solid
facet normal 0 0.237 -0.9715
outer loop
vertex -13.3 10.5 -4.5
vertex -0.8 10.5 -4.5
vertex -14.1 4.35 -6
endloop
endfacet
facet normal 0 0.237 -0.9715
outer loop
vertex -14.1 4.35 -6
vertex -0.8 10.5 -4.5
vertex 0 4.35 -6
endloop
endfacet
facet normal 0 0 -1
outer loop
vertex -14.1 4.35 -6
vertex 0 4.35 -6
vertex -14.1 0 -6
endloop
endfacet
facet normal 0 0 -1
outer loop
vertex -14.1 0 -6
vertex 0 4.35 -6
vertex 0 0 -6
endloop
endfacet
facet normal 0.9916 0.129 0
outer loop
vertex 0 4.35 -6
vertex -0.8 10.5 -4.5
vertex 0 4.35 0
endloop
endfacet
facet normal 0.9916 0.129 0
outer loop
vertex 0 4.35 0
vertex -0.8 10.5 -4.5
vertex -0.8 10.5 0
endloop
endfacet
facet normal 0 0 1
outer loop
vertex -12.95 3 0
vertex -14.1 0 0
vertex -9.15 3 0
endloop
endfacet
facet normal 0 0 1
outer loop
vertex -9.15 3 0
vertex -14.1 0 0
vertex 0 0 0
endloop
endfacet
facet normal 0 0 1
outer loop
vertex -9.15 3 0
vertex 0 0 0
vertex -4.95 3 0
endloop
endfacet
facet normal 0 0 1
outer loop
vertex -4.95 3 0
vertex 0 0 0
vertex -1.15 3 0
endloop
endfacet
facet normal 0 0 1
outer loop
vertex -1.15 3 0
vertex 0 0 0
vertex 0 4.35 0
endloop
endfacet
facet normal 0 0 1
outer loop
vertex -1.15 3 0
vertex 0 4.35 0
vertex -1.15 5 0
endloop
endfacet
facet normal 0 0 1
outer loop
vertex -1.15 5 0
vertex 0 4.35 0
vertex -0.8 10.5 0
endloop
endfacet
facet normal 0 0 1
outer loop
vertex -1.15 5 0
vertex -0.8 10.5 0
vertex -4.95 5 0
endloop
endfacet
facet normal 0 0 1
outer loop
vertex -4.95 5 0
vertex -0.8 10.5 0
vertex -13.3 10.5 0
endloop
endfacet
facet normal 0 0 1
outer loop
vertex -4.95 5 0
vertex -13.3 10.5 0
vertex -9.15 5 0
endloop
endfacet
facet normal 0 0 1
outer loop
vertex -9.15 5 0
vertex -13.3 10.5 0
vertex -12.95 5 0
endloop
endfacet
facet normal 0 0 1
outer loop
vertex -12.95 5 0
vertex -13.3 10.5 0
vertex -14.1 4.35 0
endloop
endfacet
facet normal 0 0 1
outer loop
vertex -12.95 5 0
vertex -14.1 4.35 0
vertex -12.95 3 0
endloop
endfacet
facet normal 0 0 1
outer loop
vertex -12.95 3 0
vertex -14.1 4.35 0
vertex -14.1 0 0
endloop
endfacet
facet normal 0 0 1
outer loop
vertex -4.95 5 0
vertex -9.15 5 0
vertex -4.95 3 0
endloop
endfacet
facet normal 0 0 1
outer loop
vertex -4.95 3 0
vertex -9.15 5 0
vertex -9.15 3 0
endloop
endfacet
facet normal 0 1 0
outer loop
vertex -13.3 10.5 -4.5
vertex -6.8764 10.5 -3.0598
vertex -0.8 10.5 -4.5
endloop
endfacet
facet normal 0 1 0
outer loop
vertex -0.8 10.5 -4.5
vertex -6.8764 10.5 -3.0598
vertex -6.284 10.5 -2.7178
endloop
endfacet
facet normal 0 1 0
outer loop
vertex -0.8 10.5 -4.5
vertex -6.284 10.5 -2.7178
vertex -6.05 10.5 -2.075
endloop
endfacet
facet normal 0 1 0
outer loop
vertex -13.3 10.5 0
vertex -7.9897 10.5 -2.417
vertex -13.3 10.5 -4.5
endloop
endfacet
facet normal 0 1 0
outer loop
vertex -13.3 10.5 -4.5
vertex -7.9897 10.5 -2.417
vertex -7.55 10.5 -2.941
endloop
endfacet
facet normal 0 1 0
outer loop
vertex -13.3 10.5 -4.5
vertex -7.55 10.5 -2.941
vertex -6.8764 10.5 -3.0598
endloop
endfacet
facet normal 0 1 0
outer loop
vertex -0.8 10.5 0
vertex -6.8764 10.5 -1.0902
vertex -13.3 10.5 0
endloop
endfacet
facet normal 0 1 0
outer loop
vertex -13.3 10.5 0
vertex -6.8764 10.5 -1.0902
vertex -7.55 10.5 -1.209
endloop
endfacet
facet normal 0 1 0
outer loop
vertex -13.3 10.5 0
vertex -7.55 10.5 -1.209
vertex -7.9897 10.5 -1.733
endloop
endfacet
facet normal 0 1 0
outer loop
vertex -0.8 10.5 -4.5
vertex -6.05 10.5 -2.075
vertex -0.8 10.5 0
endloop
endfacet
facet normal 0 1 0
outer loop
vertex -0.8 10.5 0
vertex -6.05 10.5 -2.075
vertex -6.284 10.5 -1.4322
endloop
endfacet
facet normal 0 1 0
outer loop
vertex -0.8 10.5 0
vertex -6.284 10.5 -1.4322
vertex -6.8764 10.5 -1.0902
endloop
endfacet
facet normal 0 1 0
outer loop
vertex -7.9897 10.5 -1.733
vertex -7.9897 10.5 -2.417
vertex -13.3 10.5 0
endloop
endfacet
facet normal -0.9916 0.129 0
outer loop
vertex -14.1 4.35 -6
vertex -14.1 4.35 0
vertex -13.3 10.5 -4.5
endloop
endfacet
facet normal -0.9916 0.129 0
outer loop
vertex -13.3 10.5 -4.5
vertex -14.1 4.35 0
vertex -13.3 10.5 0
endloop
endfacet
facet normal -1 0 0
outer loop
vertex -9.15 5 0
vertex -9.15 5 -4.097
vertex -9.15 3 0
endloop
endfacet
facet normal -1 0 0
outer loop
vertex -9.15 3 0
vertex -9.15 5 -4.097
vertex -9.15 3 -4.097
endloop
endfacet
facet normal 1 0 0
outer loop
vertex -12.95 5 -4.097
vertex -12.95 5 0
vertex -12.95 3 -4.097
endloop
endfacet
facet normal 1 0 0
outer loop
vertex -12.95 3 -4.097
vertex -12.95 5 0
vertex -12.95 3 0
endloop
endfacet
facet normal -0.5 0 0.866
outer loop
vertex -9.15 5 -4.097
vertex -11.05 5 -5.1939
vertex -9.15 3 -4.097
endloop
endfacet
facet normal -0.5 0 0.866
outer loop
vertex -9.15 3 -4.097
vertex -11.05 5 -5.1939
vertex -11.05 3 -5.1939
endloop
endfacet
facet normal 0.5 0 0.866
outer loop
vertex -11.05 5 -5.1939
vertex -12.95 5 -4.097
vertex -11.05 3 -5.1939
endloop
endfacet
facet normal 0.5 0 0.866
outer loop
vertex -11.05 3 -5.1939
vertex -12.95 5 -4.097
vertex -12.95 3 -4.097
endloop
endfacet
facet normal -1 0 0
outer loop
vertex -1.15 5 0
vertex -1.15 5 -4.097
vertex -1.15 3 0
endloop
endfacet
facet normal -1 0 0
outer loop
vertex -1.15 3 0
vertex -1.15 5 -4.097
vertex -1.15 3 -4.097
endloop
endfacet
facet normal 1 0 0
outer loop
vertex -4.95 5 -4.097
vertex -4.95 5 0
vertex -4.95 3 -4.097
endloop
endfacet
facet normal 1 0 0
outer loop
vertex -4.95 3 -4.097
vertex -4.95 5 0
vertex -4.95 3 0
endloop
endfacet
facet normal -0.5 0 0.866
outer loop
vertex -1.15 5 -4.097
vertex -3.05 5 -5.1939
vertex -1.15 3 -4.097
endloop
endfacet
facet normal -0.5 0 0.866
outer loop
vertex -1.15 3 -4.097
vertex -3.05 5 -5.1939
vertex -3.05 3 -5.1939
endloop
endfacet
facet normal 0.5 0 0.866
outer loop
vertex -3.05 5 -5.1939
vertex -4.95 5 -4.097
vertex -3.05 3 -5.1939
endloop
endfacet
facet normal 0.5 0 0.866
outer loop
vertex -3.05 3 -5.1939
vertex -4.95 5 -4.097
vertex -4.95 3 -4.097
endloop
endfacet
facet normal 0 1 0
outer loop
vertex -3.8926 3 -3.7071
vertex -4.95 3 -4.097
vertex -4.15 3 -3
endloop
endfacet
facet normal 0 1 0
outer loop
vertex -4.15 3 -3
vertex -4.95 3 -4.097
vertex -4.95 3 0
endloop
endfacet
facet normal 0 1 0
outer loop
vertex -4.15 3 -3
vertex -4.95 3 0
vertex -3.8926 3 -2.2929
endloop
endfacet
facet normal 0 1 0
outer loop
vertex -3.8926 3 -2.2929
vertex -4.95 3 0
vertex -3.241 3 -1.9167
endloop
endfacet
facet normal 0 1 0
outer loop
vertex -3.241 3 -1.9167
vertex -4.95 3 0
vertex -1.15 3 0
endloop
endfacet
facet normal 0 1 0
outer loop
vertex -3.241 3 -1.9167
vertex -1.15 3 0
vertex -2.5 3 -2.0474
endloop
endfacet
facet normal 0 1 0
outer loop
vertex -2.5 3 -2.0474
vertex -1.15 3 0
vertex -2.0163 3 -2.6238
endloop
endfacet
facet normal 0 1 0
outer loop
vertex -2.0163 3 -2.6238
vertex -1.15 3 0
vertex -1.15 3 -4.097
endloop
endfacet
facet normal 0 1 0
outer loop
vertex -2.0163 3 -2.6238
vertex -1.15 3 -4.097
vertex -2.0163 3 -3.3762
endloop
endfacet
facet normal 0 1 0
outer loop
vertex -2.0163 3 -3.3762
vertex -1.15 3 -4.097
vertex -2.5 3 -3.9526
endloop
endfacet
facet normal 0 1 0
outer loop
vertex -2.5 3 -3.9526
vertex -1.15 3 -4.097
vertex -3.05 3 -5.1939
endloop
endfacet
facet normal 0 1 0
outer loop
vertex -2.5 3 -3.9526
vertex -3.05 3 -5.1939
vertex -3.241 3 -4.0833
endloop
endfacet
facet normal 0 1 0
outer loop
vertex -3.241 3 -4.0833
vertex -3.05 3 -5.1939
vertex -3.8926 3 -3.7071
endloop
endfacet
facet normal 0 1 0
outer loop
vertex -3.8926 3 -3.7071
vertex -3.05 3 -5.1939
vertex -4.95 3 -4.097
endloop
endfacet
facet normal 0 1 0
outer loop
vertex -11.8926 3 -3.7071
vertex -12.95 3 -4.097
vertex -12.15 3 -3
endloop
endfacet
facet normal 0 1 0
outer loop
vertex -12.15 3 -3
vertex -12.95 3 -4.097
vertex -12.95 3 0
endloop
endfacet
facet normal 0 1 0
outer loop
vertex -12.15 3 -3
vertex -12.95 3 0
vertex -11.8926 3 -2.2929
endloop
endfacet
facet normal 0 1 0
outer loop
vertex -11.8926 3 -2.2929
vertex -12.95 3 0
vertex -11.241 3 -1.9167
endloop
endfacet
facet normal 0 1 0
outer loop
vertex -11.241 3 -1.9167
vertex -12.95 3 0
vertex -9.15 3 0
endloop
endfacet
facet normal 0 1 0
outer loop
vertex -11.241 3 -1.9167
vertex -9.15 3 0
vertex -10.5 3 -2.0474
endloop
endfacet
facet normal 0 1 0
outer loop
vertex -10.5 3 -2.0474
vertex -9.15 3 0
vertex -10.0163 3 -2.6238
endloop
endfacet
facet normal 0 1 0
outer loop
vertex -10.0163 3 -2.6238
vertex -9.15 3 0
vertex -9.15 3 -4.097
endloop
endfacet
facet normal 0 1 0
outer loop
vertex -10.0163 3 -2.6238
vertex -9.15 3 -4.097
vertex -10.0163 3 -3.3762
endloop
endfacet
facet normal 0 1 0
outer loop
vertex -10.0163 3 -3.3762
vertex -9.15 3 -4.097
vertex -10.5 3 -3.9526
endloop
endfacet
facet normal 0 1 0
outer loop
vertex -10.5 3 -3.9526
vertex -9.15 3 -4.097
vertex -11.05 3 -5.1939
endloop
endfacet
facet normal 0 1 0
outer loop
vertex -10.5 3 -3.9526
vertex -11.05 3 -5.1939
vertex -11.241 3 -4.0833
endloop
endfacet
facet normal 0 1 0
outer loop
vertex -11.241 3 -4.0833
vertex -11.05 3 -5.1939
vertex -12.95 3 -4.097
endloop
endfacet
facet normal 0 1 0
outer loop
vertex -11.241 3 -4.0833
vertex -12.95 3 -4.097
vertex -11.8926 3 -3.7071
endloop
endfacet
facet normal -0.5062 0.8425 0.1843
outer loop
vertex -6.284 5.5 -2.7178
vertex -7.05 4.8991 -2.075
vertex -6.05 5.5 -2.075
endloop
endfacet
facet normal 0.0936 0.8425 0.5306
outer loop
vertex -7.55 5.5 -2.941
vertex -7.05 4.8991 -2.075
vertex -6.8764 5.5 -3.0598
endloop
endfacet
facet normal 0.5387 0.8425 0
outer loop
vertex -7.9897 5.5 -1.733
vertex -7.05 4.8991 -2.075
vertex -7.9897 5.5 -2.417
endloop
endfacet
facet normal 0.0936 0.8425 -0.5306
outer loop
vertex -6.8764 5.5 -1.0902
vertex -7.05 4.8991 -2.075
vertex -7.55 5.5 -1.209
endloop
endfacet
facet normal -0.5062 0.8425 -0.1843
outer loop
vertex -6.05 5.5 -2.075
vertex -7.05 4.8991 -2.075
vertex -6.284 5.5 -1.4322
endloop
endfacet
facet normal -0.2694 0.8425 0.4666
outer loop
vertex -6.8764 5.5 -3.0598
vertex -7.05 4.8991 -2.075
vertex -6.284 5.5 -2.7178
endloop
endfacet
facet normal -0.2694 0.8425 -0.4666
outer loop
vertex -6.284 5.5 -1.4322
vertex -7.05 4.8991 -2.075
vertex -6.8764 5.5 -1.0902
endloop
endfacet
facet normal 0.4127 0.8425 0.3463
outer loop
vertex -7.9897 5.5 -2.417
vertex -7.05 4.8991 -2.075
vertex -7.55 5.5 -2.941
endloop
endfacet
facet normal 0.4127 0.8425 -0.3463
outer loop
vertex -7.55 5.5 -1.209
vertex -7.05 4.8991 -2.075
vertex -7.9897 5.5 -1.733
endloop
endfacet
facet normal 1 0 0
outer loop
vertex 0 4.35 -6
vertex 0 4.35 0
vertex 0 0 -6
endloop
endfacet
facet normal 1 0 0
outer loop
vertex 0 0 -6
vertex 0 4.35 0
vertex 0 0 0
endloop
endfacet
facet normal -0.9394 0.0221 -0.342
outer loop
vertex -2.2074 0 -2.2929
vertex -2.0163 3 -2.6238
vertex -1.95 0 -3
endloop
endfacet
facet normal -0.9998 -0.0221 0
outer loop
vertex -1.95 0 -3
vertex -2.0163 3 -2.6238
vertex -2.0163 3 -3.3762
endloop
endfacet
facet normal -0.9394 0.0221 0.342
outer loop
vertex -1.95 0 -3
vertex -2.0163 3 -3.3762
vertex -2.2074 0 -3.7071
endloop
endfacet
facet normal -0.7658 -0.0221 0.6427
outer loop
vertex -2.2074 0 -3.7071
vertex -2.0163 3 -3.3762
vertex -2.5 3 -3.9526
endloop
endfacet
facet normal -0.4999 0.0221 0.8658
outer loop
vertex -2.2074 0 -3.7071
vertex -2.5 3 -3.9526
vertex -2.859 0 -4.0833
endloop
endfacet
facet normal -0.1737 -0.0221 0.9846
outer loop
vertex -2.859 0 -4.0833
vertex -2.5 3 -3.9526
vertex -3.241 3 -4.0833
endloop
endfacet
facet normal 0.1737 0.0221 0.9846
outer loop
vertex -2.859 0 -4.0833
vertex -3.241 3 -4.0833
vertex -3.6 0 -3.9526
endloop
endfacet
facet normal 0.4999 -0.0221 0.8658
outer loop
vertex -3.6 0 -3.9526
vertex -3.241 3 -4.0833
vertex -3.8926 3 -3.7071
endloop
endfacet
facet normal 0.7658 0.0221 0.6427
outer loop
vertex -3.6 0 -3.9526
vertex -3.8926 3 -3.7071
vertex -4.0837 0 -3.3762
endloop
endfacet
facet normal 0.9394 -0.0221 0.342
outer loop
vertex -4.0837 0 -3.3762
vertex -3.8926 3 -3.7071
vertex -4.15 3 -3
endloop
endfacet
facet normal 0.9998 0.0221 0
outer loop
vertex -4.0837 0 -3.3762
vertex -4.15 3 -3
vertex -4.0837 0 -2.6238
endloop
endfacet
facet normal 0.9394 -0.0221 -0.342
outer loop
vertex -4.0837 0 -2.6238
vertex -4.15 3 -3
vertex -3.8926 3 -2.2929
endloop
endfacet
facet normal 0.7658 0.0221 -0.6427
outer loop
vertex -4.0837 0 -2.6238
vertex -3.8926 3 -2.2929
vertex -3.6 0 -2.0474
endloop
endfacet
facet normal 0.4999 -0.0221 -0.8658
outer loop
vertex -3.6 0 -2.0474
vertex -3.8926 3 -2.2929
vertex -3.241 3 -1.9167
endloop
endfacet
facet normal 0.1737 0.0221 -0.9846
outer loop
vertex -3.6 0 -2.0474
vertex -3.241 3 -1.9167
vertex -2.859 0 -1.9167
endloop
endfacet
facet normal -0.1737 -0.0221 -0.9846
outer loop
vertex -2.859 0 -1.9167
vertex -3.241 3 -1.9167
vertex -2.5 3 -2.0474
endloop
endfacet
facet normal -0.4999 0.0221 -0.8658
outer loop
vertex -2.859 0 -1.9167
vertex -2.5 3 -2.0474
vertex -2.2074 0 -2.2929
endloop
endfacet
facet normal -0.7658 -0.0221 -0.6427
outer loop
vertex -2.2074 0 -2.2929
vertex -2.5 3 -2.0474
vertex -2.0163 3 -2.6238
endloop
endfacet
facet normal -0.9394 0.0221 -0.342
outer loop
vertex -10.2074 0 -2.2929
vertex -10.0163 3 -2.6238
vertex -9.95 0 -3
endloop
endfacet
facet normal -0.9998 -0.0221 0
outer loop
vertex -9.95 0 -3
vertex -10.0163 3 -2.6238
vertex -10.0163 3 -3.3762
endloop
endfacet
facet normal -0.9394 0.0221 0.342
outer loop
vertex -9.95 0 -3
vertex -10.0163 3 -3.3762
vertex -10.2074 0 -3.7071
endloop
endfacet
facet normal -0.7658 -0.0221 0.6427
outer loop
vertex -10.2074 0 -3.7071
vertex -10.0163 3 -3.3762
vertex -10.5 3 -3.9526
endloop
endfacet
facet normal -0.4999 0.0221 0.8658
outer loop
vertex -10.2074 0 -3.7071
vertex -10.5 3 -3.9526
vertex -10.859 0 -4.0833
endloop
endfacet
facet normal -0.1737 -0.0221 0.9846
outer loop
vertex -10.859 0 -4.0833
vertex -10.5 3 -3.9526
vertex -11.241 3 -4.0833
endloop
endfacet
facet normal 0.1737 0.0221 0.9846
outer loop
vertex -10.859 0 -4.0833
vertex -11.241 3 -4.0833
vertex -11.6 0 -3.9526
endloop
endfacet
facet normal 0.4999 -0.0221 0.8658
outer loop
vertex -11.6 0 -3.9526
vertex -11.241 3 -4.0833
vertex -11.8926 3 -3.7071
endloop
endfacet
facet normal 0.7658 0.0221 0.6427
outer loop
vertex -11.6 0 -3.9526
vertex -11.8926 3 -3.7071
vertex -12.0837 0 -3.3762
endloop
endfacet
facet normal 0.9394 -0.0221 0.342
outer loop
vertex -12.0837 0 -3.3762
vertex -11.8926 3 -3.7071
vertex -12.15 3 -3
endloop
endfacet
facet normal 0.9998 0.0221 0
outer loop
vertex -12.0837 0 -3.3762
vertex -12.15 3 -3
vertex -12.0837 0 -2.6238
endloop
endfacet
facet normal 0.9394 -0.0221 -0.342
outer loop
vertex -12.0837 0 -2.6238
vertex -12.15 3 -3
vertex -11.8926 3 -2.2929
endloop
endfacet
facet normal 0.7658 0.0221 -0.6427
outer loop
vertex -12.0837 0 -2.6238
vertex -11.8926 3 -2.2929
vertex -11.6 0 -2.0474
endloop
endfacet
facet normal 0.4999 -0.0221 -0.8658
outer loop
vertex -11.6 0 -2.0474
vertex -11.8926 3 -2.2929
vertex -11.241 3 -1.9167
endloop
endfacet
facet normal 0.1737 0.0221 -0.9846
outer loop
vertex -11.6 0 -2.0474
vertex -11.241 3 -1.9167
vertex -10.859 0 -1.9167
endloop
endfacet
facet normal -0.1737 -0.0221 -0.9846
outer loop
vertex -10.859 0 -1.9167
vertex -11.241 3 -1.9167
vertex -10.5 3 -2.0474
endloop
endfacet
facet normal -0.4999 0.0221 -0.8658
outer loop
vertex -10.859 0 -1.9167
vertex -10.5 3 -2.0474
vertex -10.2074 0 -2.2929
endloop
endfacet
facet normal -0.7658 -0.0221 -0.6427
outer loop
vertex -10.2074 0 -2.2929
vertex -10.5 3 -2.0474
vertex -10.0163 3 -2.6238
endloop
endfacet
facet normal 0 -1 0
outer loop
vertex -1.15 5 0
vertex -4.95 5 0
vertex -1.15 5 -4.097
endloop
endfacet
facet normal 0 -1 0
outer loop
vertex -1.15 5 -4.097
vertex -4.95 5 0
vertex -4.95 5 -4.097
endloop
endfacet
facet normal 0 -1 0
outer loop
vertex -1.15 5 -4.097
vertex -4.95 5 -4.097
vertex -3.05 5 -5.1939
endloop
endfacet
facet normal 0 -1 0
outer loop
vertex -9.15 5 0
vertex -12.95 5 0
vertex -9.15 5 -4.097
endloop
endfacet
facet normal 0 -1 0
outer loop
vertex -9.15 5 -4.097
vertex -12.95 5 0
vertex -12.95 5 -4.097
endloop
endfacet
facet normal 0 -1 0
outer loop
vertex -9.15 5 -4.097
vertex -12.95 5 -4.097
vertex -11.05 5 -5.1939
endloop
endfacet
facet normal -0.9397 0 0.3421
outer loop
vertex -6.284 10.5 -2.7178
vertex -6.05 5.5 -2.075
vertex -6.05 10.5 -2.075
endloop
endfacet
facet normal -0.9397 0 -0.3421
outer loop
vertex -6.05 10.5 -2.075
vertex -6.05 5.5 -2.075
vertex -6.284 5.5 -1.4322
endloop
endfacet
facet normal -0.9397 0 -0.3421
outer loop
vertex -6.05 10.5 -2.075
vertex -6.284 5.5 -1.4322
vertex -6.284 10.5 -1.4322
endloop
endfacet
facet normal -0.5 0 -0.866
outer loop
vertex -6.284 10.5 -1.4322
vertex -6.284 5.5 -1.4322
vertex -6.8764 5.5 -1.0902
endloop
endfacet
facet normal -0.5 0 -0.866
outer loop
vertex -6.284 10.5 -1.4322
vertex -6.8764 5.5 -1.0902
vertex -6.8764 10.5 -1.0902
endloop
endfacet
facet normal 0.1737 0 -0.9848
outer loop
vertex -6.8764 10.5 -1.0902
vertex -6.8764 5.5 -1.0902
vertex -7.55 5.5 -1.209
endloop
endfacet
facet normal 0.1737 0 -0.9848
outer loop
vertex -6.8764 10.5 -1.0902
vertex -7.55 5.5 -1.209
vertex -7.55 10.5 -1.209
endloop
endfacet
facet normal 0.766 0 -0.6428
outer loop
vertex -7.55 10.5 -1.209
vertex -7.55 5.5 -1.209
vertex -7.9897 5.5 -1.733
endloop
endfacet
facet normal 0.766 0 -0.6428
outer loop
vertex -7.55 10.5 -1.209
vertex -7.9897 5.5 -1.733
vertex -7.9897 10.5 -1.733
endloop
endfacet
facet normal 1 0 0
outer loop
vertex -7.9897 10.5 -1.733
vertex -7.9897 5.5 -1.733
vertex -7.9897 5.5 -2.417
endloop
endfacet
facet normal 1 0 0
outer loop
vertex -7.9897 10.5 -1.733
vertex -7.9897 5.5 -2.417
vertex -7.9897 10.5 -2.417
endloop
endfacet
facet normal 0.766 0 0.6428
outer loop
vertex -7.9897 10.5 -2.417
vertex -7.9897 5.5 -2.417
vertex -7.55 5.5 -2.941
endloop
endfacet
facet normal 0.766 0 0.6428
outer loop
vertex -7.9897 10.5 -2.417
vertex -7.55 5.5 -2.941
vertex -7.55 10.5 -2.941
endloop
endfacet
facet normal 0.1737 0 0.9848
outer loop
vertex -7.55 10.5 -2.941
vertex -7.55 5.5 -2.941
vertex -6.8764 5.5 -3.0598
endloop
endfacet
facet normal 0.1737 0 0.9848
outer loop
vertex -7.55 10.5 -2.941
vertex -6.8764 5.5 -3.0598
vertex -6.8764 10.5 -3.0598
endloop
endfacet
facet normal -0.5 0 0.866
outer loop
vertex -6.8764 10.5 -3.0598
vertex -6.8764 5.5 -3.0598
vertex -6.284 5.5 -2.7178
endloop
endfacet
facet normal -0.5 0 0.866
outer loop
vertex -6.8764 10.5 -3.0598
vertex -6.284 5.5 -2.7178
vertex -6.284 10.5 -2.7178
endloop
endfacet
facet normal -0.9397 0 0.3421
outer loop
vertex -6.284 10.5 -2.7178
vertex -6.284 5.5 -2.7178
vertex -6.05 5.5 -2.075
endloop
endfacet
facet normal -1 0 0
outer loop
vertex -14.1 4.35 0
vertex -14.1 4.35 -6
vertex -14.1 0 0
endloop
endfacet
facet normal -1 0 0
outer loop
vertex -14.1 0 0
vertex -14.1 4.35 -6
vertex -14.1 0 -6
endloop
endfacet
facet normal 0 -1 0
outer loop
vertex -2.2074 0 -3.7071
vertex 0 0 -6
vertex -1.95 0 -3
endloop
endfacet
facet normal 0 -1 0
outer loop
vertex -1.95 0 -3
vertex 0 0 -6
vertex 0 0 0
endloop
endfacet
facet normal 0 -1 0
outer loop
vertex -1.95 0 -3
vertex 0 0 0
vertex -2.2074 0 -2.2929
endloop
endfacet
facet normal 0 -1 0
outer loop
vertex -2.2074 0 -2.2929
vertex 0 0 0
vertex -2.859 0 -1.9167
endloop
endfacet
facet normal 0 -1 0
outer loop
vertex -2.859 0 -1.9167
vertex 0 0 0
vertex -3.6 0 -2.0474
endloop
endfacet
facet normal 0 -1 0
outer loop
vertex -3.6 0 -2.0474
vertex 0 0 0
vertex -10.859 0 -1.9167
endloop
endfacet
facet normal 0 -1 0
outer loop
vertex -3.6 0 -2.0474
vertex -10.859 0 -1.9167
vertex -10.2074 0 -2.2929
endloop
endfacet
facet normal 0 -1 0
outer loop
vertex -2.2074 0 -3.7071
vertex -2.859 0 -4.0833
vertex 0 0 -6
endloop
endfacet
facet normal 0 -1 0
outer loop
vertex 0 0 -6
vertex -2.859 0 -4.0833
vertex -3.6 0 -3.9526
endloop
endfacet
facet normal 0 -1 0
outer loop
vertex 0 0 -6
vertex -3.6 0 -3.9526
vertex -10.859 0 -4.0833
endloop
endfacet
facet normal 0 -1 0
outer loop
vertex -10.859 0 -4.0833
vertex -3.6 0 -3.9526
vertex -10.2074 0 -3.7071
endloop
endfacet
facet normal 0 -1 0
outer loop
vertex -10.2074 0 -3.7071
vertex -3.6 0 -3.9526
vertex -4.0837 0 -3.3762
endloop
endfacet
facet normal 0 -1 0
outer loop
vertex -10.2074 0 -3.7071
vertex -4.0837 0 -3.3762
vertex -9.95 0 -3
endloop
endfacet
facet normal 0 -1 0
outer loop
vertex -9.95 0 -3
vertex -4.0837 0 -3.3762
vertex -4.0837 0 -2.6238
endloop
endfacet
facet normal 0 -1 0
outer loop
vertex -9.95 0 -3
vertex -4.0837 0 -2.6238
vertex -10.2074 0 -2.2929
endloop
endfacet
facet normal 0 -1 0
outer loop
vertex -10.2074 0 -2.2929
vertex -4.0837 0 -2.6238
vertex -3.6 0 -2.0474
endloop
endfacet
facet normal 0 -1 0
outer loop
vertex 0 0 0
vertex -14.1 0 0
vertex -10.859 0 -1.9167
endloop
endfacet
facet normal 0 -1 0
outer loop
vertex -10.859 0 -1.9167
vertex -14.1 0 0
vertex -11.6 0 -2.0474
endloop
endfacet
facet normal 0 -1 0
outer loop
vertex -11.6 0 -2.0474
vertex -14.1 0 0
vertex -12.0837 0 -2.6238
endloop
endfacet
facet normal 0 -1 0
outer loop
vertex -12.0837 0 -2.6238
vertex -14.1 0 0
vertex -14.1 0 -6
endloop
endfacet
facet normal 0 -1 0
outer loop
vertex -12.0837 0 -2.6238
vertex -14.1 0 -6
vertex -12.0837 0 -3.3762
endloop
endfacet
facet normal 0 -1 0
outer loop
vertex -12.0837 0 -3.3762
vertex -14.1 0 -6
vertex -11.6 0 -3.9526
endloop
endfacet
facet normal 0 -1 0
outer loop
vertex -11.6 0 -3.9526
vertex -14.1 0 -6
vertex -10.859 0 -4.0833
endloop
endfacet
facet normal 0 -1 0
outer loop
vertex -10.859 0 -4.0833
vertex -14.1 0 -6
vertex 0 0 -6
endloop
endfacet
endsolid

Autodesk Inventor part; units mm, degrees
ref_plane "YZ Plane" through (0, 0, 0) normal (1, 0, 0) x (0, 1, 0)
ref_plane "XZ Plane" through (0, 0, 0) normal (0, 1, 0) x (-1, 0, 0)
ref_plane "XY Plane" through (0, 0, 0) normal (0, 0, 1) x (1, 0, 0)
sketch "Эскиз1" plane through (0, 0, 0) normal (0, 1, 0) x (-1, 0, 0)
  line L0 (0, 0) -> (14.1, 0)
  line L1 (14.1, 0) -> (14.1, -6)
  line L2 (14.1, -6) -> (0, -6)
  line L3 (0, -6) -> (0, 0)
  dimension "d0" = 14.1
  dimension "d1" = 6
extrude "Выдавливание1" add sketch "Эскиз1" along normal blind 10.5
sketch "Эскиз2" plane through (0, 10.5, 0) normal (0, 1, 0) x (1, 0, 0)
  line L0 (-14.1, 0) -> (0, 0) projected
  line L1 (-7.05, 0) -> (-7.05, 2.075)
  dimension "d4" = 2.075
hole "Отверстие1" at (-7.05, 10.5, -2.075) direction (0, -1, 0) diameter 2 depth 5 tip angle 118
sketch "Эскиз3" plane through (0, 0, 0) normal (0, -1, 0) x (1, 0, 0)
  line L0 (0, 0) -> (0, -6) projected
  line L1 (0, -3) -> (-3.05, -3)
  line L2 (-14.1, -6) -> (-14.1, 0) projected
  line L3 (-14.1, -3) -> (-11.05, -3)
  line L4 (0, 0) -> (0, -6) projected
  line L5 (-14.1, -6) -> (-14.1, 0) projected
  line L6 (-14.1, 0) -> (0, 0) projected
  dimension "d12" = 3
  dimension "d24" = 8
hole "Отверстие2" at (-3.05, 0, -3) at (-11.05, 0, -3) direction (0, 1, 0) diameter 2.2 depth 5
sketch "Эскиз4" plane through (0, 0, 0) normal (0, -1, 0) x (1, 0, 0)
  circle A0 centre (-3.05, -3) radius 1.1 projected
  circle A1 centre (-11.05, -3) radius 1.1 projected
  line L0 (-3.05, -5.1939) -> (-4.95, -4.097)
  line L1 (-4.95, -4.097) -> (-4.95, -1.903)
  line L2 (-4.95, -1.903) -> (-3.05, -0.8061)
  line L3 (-3.05, -0.8061) -> (-1.15, -1.903)
  line L4 (-1.15, -1.903) -> (-1.15, -4.097)
  line L5 (-1.15, -4.097) -> (-3.05, -5.1939)
  line L6 (0, 0) -> (0, -6) projected
  line L7 (-11.05, -5.1939) -> (-12.95, -4.097)
  line L8 (-12.95, -4.097) -> (-12.95, -1.903)
  line L9 (-12.95, -1.903) -> (-11.05, -0.8061)
  line L10 (-11.05, -0.8061) -> (-9.15, -1.903)
  line L11 (-9.15, -1.903) -> (-9.15, -4.097)
  line L12 (-9.15, -4.097) -> (-11.05, -5.1939)
  line L13 (-1.15, -1.903) -> (-4.95, -1.903)
  line L14 (-4.95, -1.903) -> (-4.95, 0)
  line L15 (-4.95, 0) -> (-1.15, 0)
  line L16 (-1.15, 0) -> (-1.15, -1.903)
  line L17 (-14.1, 0) -> (0, 0) projected
  line L18 (-9.15, -1.903) -> (-12.95, -1.903)
  line L19 (-12.95, -1.903) -> (-12.95, 0)
  line L20 (-12.95, 0) -> (-9.15, 0)
  line L21 (-9.15, 0) -> (-9.15, -1.903)
  point P0 (-3.05, 0)
  point P1 (-9.15, 0)
  dimension "d21" = 3.8
extrude "Выдавливание2" cut sketch "Эскиз4" along normal blind 2 from surface at -5
chamfer "Фаска1" distance 0.8 distance2 6.15 1 edges at (-14.1, 10.5, -3) measured on face at (-7.05, 10.5, -5.025)
chamfer "Фаска2" distance 0.8 distance2 6.15 1 edges at (0, 10.5, -3) measured on face at (-6.7833, 10.5, -5.025)
chamfer "Фаска3" distance 1.5 distance2 6.15 1 edges at (-7.05, 10.5, -6) measured on face at (-7.05, 10.5, -5.025)
equation "\"Радиус_гибки\" = Толщина"
equation "\"Ширина_просечки\" = Толщина"
equation "\"Глубина_просечки\" = 0.5 * Толщина"
equation "\"Размер_просечки\" = 4 * Толщина"
equation "\"Мин_остаток\" = 2 * Толщина"
equation "\"Радиус_перехода\" = Радиус_гибки"
equation "\"Радиус_Якоби\" = Толщина"
equation "\"Размер_зазора\" = Толщина"
equation "\"Толщина\" = 0.5"
properties part number "Съемная стойка сервы"
